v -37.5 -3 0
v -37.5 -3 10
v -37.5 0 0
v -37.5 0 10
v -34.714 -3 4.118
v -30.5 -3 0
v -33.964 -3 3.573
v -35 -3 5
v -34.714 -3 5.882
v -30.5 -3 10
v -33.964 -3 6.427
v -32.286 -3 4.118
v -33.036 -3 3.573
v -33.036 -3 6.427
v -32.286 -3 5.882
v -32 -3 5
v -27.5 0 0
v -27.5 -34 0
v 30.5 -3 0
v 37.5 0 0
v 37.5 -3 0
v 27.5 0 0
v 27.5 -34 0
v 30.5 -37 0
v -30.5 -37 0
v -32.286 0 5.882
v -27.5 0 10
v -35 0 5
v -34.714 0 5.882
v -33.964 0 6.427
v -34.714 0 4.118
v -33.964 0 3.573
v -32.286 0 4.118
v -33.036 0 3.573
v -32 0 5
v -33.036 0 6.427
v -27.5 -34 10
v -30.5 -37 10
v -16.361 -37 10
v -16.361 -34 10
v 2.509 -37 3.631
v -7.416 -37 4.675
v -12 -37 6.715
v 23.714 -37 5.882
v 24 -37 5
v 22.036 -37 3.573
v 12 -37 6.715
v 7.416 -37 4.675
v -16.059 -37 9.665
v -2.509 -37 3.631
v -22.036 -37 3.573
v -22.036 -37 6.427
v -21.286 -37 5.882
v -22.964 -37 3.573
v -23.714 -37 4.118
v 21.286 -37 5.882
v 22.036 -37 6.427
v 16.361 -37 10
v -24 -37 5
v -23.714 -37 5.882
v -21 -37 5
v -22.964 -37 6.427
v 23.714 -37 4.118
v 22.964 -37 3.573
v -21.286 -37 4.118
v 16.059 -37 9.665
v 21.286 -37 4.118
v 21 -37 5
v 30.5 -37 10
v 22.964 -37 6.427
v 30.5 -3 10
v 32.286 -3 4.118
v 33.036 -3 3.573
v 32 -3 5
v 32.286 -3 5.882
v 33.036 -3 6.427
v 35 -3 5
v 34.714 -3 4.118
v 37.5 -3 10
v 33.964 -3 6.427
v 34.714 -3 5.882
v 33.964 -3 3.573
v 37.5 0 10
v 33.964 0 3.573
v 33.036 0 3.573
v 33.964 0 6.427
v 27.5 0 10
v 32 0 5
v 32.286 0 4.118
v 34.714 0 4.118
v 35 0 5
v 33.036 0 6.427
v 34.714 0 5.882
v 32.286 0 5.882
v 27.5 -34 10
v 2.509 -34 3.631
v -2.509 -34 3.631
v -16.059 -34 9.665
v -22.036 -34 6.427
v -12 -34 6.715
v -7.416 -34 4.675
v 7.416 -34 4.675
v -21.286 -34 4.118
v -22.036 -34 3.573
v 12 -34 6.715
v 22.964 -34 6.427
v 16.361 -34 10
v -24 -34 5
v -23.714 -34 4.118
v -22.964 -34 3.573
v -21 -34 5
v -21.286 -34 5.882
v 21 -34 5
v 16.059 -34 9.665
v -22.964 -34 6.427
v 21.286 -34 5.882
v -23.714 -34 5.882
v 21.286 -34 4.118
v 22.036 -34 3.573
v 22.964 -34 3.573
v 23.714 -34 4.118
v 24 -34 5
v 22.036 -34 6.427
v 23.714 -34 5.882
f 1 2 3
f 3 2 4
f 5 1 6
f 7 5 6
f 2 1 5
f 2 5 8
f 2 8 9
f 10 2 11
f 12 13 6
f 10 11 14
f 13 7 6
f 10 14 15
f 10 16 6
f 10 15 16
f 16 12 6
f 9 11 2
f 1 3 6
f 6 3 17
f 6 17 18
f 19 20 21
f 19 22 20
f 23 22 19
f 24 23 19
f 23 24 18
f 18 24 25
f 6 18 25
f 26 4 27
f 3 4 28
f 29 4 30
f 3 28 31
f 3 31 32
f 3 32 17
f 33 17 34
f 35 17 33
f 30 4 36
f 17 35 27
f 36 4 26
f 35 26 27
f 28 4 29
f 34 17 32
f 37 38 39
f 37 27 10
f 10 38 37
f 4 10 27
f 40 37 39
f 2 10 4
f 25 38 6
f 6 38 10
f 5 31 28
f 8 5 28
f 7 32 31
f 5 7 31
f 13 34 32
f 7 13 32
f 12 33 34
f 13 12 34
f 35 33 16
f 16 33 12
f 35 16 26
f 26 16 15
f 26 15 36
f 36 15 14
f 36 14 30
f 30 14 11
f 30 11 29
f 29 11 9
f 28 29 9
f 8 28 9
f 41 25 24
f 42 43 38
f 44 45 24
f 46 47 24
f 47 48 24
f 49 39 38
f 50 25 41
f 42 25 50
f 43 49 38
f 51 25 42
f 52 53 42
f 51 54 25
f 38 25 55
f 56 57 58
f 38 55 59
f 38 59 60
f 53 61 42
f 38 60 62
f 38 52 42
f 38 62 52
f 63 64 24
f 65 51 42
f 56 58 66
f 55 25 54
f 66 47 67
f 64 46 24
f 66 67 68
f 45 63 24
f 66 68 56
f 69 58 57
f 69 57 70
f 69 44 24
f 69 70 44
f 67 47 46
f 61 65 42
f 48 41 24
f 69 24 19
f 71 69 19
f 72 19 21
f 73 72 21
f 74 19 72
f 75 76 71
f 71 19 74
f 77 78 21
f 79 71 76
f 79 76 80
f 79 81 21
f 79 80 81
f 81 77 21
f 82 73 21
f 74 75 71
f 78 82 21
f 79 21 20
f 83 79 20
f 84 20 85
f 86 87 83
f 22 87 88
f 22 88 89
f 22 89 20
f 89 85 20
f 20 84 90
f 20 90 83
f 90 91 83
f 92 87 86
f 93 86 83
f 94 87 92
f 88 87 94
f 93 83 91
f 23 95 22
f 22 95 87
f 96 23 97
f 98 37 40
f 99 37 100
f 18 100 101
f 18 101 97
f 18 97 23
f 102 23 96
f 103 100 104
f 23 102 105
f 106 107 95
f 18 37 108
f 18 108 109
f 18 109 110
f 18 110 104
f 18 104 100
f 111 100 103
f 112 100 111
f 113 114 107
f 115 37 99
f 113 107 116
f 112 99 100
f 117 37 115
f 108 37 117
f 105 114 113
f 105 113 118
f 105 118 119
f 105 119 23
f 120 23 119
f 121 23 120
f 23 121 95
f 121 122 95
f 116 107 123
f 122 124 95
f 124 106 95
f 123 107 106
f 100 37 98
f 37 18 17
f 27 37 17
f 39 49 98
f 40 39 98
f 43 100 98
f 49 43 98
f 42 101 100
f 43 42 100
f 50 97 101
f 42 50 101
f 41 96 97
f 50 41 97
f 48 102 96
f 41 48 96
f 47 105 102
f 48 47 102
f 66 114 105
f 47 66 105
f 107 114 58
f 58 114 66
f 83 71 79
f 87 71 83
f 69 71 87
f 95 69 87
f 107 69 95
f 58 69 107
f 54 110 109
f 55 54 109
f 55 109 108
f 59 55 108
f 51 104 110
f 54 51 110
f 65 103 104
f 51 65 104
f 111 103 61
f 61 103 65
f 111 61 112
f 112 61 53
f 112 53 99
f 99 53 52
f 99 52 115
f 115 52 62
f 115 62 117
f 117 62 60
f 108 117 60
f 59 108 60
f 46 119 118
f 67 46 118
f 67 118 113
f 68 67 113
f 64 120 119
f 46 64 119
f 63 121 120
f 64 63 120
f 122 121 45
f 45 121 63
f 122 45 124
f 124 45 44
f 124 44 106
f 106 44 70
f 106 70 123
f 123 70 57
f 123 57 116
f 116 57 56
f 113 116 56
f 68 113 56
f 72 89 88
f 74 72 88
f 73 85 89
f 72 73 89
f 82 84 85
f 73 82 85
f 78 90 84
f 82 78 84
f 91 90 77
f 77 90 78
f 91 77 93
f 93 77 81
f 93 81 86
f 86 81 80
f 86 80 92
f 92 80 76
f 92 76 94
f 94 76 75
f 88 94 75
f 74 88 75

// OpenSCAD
module cuerpo(){
	difference(){
	translate([0,0,0])
	cube([55,55,3],center=true);

	//agujero central
	translate([0,0,0])
	cylinder(r=48/2,h=20, center=true);
	
	//cuatro agujeros
	translate([45/2,45/2,0])
	cylinder(r=3/2,h=20, $fn=10, center=true);
	translate([-45/2,45/2,0])
	cylinder(r=3/2,h=20, $fn=10, center=true);
	translate([45/2,-45/2,0])
	cylinder(r=3/2,h=20, $fn=10, center=true);
	translate([-45/2,-45/2,0])
	cylinder(r=3/2,h=20, $fn=10, center=true);
	}
}



module soporte	(){

	difference(){
	union(){
	translate([55/2,55/2-10,0])
	cube([3,10,34+3]);
	translate([55/2,55/2-10,0])
	cube([10,10,3]);
		
	translate([55/2,-55/2,0])
	cube([3,10,34+3]);
	translate([55/2,-55/2,0])
	cube([10,10,3]);

	translate([-55/2-3,55/2-10,0])
	cube([3,10,34+3]);
	translate([-55/2-10,55/2-10,0])
	cube([10,10,3]);

	translate([-55/2-3,-55/2,0])
	cube([3,10,34+3]);
	translate([-55/2-10,-55/2,0])
	cube([10,10,3]);
	}

	
	translate([55/2+6,55/2-5,0])
	cylinder(r=3/2,h=20, $fn=10, center=true);

	translate([55/2+6,-55/2+5,0])
	cylinder(r=3/2,h=20, $fn=10, center=true);
	
	translate([-55/2-6,55/2-5,0])
	cylinder(r=3/2,h=20, $fn=10, center=true);

	translate([-55/2-6,-55/2+5,0])
	cylinder(r=3/2,h=20, $fn=10, center=true);
	
	}
}

module total()
	{
	soporte();
	translate([0,0,34+1.5])
	cuerpo();
}


module corte(){
		difference(){		

			translate([0,0,55/2])
			rotate([90,0,0])
			total();

			translate([-100,-100,10])
			cube([200,200,100]);
		}
}

corte();

//total();
